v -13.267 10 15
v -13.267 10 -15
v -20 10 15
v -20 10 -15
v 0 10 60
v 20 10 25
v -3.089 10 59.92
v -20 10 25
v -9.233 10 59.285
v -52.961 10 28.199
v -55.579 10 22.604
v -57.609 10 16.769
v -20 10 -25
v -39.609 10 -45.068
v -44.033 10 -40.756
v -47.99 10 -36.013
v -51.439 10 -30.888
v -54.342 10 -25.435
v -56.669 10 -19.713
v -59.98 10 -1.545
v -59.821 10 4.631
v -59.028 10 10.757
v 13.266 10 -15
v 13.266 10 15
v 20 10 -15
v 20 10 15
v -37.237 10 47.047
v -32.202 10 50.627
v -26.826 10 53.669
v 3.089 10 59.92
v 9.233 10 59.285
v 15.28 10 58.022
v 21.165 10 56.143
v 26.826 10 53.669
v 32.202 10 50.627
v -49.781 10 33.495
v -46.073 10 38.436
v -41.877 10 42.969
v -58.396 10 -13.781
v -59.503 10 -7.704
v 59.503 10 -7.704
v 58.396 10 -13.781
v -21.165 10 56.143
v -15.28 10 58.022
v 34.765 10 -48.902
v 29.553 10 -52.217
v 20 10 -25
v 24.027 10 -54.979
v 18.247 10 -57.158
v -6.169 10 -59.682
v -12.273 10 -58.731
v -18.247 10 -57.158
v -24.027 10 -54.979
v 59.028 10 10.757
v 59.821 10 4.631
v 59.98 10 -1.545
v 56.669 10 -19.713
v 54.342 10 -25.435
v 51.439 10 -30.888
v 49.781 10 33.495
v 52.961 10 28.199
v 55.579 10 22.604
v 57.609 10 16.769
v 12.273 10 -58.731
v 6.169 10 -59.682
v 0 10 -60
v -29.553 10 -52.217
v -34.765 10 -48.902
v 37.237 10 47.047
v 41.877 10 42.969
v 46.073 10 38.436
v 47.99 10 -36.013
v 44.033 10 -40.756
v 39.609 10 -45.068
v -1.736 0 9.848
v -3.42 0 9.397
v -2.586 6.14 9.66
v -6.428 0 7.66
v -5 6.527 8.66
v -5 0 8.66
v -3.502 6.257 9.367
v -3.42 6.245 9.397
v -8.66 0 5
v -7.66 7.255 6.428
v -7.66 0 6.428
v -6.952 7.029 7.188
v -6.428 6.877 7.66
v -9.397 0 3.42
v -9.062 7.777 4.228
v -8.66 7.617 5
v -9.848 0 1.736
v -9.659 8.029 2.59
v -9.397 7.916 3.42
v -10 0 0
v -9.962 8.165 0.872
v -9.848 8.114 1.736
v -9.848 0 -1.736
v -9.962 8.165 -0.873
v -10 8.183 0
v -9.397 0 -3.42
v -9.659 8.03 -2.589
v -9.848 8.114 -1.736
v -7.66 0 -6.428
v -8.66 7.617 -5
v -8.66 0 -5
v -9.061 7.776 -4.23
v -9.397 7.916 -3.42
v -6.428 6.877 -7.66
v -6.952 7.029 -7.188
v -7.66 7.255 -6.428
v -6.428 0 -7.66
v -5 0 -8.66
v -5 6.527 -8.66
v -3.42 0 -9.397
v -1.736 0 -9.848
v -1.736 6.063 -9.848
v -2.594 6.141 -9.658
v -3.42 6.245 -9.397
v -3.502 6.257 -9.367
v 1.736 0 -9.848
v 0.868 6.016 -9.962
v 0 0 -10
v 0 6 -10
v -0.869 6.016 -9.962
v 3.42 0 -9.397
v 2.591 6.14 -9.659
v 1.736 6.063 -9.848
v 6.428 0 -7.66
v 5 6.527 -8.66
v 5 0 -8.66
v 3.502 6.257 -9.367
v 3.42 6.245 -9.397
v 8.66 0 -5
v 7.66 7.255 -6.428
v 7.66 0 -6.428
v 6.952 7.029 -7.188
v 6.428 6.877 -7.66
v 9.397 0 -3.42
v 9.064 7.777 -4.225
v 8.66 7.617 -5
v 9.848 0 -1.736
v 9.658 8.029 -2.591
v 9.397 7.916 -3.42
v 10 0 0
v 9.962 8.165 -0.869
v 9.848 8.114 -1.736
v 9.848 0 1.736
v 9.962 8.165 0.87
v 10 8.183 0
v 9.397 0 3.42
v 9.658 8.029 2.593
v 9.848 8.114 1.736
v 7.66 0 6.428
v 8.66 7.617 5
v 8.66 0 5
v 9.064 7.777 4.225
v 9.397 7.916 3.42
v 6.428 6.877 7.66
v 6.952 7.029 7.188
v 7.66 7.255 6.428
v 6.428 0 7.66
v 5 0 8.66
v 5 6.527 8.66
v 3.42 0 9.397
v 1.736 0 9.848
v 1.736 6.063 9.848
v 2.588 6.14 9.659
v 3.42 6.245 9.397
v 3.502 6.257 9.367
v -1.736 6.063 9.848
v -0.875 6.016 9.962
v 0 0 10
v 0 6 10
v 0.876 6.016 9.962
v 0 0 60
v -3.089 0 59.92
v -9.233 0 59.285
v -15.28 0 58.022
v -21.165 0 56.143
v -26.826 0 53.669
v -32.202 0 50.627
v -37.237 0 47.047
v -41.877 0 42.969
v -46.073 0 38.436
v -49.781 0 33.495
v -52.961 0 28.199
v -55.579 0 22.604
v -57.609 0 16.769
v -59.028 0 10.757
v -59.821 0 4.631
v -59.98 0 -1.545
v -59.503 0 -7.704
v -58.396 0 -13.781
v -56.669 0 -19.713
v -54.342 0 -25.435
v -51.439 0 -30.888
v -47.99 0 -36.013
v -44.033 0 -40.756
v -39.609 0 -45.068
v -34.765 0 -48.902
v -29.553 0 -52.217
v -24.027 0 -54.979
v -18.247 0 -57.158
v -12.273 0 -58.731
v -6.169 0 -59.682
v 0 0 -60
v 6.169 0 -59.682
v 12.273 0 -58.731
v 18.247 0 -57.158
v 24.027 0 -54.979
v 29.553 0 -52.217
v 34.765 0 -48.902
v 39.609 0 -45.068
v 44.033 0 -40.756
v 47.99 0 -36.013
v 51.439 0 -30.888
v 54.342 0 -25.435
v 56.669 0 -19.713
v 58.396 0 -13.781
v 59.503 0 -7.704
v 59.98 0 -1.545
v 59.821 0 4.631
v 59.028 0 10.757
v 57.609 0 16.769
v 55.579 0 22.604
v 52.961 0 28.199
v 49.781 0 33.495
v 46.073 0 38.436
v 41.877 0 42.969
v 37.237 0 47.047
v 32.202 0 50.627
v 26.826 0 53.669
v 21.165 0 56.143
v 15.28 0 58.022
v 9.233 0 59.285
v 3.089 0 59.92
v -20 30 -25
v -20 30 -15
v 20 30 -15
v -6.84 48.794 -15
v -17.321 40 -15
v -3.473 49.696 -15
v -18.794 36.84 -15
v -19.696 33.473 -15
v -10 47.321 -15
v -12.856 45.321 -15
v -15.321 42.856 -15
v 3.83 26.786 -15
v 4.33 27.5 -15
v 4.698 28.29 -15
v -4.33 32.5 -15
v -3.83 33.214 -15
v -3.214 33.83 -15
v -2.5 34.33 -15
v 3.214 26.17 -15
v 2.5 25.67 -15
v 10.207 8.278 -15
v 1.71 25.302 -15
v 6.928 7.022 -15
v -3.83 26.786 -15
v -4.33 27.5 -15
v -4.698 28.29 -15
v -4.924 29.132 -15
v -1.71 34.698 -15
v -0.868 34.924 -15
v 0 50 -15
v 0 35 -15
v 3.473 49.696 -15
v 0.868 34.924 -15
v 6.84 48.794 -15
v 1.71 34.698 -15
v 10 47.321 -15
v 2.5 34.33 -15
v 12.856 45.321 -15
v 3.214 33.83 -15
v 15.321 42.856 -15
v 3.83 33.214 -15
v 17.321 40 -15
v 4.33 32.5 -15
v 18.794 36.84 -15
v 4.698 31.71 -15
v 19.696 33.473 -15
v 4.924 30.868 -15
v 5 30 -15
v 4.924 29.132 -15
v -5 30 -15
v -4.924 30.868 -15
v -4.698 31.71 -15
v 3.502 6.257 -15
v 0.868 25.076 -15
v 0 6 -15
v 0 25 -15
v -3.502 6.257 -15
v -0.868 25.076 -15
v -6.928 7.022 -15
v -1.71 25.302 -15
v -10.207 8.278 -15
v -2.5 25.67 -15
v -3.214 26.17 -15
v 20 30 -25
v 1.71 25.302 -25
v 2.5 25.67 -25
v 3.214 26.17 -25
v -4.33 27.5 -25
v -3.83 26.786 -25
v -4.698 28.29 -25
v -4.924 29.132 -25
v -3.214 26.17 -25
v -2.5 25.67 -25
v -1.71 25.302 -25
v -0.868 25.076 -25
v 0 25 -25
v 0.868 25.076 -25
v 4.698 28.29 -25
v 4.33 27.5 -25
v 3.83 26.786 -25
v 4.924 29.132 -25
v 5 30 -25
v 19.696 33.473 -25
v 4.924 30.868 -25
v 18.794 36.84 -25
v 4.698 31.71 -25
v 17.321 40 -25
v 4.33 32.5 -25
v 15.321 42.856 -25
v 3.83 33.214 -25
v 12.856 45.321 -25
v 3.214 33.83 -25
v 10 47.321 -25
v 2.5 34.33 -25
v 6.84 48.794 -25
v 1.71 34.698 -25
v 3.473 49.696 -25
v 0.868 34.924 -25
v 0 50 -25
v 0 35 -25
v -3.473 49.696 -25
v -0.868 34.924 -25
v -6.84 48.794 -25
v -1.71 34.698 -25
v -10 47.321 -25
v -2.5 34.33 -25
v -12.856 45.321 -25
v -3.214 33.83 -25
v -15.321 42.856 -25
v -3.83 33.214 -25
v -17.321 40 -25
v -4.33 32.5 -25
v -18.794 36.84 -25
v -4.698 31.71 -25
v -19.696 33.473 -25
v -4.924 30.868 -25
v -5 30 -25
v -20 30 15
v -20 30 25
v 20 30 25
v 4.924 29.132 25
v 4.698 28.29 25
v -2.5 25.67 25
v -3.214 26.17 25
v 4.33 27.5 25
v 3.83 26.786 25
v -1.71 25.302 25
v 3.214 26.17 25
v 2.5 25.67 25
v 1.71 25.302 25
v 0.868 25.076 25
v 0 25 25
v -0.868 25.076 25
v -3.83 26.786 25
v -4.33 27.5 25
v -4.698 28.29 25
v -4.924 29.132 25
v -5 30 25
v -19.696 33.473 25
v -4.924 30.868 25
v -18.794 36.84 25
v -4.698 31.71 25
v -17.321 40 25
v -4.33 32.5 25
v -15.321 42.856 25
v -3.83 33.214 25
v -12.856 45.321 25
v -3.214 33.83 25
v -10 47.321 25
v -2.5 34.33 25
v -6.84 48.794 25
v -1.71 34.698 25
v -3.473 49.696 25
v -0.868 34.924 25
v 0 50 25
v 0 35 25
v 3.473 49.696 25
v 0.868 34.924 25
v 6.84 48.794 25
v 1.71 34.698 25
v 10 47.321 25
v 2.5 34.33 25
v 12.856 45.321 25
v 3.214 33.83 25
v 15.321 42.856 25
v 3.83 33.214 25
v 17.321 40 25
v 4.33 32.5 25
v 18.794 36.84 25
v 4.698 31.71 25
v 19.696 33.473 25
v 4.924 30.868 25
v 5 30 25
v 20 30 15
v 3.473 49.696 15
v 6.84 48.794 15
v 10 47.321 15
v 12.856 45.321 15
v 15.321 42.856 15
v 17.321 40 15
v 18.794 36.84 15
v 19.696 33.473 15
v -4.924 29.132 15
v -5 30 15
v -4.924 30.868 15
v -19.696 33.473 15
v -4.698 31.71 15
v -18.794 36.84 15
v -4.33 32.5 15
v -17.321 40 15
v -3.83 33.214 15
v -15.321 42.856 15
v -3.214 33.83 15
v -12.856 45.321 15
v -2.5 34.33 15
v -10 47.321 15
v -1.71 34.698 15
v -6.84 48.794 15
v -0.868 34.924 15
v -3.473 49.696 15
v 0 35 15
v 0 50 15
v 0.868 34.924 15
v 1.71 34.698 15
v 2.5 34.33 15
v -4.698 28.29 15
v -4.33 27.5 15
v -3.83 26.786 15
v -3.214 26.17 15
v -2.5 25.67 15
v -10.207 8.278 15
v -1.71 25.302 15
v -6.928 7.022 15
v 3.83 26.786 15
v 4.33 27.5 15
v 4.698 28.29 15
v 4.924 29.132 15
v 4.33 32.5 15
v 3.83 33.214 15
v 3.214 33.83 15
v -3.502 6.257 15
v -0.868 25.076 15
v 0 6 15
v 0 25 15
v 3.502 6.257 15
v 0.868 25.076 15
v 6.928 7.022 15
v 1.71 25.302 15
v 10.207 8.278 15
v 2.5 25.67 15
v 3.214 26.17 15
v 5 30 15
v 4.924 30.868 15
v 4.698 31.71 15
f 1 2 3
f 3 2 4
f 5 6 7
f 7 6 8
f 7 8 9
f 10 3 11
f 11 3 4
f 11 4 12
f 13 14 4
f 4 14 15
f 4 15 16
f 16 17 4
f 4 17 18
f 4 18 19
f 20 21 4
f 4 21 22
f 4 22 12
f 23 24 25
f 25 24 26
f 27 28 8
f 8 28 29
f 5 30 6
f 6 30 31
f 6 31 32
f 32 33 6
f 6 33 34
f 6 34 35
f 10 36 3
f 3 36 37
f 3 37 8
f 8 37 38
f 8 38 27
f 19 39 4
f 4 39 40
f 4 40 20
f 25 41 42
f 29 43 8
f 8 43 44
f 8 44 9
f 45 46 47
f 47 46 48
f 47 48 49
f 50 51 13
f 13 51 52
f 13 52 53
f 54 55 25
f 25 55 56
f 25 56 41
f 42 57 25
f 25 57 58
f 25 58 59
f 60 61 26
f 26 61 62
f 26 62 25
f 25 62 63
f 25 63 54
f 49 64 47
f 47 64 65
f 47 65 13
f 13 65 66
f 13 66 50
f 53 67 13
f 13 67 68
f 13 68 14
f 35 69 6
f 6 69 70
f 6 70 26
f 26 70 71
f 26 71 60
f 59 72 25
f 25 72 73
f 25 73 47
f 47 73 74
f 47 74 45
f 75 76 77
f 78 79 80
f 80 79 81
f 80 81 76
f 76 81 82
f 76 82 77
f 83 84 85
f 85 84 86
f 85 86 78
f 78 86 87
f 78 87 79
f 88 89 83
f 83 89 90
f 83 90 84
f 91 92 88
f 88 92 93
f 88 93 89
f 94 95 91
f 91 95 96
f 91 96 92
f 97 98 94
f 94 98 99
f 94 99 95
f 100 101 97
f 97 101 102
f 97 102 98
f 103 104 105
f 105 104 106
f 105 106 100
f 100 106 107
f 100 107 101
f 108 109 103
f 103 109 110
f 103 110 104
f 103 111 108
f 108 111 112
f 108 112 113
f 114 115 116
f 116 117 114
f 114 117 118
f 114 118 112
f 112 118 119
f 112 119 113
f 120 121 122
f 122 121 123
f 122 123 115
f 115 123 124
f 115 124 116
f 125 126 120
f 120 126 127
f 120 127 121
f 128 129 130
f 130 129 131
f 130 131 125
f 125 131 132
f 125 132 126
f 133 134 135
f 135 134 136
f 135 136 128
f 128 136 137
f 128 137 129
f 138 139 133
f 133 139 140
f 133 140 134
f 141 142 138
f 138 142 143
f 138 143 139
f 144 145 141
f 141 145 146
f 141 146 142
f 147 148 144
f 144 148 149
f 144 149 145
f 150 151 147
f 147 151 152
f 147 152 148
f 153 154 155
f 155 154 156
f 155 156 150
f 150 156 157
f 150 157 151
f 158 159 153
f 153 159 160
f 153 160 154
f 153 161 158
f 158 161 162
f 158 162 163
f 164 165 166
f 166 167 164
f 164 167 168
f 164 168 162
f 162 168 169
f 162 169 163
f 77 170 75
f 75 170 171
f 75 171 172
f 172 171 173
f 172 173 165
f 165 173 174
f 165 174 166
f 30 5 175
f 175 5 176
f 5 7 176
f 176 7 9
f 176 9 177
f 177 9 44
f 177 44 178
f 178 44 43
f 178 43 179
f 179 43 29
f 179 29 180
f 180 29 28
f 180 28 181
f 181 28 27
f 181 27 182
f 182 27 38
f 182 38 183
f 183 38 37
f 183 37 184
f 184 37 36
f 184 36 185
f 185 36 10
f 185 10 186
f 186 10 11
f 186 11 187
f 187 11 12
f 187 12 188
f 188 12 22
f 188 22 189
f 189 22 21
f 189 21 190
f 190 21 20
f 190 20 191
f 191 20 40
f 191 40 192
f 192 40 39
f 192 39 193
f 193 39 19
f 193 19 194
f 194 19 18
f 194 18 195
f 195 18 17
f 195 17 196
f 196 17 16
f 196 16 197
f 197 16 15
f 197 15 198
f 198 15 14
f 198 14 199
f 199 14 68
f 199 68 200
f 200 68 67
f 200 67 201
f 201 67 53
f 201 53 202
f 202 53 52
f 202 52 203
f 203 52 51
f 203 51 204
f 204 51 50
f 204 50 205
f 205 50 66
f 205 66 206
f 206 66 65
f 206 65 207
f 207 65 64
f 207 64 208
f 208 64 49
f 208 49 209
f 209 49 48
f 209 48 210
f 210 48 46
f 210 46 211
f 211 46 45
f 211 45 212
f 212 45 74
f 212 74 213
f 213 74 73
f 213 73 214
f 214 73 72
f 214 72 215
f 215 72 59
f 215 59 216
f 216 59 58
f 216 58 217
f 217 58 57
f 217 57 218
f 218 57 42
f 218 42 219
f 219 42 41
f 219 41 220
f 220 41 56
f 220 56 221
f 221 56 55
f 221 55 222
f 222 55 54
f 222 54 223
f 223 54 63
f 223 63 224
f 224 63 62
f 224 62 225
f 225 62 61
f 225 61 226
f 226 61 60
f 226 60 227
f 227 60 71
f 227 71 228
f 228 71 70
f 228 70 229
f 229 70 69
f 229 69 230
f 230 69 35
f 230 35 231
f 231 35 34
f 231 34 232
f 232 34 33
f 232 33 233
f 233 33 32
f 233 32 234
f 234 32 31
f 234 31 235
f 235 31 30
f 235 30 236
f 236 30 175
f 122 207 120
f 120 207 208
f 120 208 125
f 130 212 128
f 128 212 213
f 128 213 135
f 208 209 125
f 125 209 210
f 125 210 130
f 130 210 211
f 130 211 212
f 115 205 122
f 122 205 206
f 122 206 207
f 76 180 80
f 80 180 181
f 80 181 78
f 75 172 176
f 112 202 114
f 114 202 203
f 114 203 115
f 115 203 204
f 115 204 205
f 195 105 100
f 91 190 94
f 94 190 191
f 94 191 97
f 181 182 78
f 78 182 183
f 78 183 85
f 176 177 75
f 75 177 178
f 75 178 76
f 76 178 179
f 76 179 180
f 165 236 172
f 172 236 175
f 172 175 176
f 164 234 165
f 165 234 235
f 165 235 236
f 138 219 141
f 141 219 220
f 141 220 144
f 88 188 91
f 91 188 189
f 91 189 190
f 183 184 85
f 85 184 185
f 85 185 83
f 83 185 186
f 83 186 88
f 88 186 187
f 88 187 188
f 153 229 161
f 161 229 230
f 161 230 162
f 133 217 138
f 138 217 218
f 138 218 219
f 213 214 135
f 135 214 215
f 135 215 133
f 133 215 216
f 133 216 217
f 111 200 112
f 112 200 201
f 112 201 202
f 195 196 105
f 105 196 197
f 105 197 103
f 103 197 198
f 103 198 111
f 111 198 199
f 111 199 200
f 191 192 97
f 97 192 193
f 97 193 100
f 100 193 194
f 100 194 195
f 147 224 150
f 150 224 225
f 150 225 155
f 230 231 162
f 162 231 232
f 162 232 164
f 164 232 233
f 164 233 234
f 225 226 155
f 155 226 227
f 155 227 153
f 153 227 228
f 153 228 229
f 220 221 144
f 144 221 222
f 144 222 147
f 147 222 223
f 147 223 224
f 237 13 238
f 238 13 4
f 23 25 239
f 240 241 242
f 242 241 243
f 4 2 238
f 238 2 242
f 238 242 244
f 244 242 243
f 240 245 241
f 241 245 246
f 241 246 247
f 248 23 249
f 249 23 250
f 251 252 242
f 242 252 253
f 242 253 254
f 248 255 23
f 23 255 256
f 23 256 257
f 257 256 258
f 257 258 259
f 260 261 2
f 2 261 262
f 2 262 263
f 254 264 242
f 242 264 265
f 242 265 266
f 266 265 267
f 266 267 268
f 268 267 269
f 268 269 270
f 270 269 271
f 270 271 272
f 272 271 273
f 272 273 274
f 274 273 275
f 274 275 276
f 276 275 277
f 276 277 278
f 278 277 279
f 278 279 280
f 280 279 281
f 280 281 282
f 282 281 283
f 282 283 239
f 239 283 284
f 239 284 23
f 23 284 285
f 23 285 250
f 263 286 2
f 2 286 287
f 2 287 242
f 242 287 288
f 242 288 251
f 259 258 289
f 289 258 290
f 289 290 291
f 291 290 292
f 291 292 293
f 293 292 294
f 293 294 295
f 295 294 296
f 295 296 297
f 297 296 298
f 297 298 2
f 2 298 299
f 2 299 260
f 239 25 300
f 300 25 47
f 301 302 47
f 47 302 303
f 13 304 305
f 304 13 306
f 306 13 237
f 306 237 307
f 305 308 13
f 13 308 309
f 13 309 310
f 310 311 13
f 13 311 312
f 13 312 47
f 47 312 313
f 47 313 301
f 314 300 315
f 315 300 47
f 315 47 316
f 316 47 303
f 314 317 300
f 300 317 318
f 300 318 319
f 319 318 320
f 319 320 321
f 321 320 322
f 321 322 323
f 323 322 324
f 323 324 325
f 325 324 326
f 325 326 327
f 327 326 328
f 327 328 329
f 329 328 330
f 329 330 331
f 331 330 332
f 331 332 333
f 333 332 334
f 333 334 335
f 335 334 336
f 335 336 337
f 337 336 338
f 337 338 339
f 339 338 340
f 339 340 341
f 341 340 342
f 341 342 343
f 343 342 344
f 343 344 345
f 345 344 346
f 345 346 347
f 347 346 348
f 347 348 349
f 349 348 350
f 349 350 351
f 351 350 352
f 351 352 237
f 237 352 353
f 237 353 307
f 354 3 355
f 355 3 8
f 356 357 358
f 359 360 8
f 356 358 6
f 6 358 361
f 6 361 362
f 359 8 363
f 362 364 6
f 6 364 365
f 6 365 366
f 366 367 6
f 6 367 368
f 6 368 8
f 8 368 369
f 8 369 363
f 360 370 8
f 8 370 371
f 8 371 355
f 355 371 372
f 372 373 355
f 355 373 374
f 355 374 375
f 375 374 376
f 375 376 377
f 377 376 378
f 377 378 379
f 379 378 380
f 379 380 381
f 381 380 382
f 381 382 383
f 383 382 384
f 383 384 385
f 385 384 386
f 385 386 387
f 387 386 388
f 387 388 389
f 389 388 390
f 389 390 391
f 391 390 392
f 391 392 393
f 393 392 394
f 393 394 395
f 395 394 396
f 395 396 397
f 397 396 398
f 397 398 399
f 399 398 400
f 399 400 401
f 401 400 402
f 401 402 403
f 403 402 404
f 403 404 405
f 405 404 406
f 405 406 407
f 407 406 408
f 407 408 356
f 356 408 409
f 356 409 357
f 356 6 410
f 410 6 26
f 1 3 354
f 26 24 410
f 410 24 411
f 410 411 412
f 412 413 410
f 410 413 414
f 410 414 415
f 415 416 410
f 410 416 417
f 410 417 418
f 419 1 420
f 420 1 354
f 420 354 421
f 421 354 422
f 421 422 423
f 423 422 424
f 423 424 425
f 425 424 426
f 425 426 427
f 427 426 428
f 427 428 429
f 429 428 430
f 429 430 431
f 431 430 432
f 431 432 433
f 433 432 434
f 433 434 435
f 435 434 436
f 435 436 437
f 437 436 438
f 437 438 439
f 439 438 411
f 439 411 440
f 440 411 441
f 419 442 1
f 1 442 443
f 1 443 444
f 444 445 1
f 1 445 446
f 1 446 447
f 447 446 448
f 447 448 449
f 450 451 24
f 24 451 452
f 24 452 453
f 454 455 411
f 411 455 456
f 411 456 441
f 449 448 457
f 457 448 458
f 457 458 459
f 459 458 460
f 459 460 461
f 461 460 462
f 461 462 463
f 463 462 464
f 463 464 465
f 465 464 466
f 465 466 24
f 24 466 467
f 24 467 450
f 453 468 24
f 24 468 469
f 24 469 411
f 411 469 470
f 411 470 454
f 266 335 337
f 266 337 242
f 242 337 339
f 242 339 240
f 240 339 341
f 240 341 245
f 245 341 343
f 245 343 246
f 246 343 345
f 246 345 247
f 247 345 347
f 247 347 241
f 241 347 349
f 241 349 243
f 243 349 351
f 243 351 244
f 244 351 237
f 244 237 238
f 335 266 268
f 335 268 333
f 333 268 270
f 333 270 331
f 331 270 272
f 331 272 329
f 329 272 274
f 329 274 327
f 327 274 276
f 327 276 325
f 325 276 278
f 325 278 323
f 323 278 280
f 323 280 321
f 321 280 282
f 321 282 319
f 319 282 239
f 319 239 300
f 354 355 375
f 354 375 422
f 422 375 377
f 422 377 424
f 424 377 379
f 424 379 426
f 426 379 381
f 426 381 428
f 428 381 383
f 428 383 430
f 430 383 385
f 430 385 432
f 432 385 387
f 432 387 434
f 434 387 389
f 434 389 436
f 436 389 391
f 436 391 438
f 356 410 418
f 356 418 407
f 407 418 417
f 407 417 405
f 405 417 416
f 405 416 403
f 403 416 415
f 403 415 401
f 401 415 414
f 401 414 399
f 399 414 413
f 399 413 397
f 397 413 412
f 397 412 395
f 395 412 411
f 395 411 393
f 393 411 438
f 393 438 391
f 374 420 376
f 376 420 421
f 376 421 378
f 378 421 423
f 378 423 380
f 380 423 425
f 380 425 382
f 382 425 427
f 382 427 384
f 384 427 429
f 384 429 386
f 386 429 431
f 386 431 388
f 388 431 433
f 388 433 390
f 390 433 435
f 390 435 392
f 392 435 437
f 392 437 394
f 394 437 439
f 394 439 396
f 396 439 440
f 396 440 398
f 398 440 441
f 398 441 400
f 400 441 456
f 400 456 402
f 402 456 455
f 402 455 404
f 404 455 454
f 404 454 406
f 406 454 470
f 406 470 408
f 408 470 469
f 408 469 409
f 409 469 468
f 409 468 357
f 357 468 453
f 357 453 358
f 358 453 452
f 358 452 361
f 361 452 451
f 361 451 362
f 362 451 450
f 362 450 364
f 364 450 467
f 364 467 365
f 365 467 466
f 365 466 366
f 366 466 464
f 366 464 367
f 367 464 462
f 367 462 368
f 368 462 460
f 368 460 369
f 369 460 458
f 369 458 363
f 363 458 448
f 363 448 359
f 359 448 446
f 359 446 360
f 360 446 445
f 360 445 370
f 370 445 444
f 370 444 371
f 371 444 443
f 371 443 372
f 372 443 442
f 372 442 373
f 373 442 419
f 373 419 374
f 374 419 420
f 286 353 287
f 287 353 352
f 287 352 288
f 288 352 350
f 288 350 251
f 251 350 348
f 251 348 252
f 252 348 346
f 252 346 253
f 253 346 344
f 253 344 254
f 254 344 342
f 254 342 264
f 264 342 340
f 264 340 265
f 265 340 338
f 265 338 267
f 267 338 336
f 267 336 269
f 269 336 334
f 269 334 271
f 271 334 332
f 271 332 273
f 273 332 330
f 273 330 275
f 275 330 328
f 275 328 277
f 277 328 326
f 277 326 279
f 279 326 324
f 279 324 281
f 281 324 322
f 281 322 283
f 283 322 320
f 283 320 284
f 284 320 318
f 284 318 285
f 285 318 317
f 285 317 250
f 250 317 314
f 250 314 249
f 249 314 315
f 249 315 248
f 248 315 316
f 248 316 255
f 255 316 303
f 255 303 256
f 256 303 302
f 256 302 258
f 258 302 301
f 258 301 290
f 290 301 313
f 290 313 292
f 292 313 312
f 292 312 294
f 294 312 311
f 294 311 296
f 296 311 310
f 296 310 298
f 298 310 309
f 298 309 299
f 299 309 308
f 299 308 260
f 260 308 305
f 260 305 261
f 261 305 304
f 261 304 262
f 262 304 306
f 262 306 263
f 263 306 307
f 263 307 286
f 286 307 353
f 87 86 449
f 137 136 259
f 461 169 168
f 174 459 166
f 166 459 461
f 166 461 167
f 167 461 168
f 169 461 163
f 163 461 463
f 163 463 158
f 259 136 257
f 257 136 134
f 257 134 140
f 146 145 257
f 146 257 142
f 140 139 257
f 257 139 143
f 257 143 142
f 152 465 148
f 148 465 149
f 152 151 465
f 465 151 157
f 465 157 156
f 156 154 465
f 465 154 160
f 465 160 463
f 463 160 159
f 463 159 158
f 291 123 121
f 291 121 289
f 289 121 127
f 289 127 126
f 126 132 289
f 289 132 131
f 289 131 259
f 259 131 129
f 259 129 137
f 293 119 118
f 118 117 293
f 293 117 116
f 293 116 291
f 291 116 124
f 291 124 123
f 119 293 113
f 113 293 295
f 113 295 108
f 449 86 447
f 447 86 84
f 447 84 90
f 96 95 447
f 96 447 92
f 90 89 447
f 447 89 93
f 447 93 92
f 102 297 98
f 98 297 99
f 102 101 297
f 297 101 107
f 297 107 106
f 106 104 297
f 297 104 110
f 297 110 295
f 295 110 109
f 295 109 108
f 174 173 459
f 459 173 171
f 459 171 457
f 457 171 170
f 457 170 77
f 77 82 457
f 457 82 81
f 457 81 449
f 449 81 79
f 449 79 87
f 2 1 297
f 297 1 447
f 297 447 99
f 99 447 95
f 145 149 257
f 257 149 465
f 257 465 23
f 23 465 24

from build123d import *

# Parameters (mm, degrees)
SKIZZE1_R                       = 60
AUFSATZ_LINEAR_AUSTRAGEN1_DEPTH = 10
SKIZZE2_W                       = 40
SKIZZE2_H                       = 10
AUFSATZ_LINEAR_AUSTRAGEN2_DEPTH = 40
VERRUNDUNG1_R                   = 20
SKIZZE3_R                       = 5
SCHNITT_LINEAR_AUSTRAGEN1_DEPTH = 116.433963806
SKIZZE4_R                       = 10
SCHNITT_LINEAR_AUSTRAGEN2_DEPTH = 10
SKIZZE5_R                       = 24
SCHNITT_LINEAR_AUSTRAGEN3_DEPTH = 30


with BuildPart() as part:
    # Skizze1 → Aufsatz-Linear austragen1 (new body)
    with BuildSketch(Plane(origin=(0, 0, 0), x_dir=(1, 0, 0), z_dir=(0, 1, 0))):
        with Locations(Location((0, 0, 0), (0, 0, 270))):
            Circle(SKIZZE1_R)
    extrude(amount=AUFSATZ_LINEAR_AUSTRAGEN1_DEPTH)

    # Skizze2 → Aufsatz-Linear austragen2 (add)
    with BuildSketch(Plane(origin=(0, 10, 0), x_dir=(1, 0, 0), z_dir=(0, 1, 0))):
        with Locations((0, -20)):
            Rectangle(SKIZZE2_W, SKIZZE2_H)
        with Locations((0, 20)):
            Rectangle(SKIZZE2_W, SKIZZE2_H)
    extrude(amount=AUFSATZ_LINEAR_AUSTRAGEN2_DEPTH)

    # Verrundung1
    verrundung1_edges = [part.edges().sort_by_distance(p)[0] for p in [
        (20, 50, -20),
        (20, 50, 20),
        (-20, 50, 20),
        (-20, 50, -20),
    ]]
    fillet(verrundung1_edges, radius=VERRUNDUNG1_R - 0.0001)  # a hair under: the kernel refuses the full size

    # Skizze3 → Schnitt-Linear austragen1 (cut, through all)
    with BuildSketch(Plane(origin=(0, 0, -25), x_dir=(-1, 0, 0), z_dir=(0, 0, -1))):
        with Locations((0, 30)):
            Circle(SKIZZE3_R)
    extrude(amount=-SCHNITT_LINEAR_AUSTRAGEN1_DEPTH, mode=Mode.SUBTRACT)

    # Skizze4 → Schnitt-Linear austragen2 (cut)
    with BuildSketch(Plane(origin=(0, 10, 0), x_dir=(1, 0, 0), z_dir=(0, 1, 0))):
        with Locations(Location((0, 0, 0), (0, 0, 270))):
            Circle(SKIZZE4_R)
    extrude(amount=-SCHNITT_LINEAR_AUSTRAGEN2_DEPTH, mode=Mode.SUBTRACT)

    # Skizze5 → Schnitt-Linear austragen3 (cut)
    with BuildSketch(Plane(origin=(0, 0, 15), x_dir=(-1, 0, 0), z_dir=(0, 0, -1))):
        with Locations((0, 30)):
            Circle(SKIZZE5_R)
    extrude(amount=SCHNITT_LINEAR_AUSTRAGEN3_DEPTH, mode=Mode.SUBTRACT)


solid = part.part
